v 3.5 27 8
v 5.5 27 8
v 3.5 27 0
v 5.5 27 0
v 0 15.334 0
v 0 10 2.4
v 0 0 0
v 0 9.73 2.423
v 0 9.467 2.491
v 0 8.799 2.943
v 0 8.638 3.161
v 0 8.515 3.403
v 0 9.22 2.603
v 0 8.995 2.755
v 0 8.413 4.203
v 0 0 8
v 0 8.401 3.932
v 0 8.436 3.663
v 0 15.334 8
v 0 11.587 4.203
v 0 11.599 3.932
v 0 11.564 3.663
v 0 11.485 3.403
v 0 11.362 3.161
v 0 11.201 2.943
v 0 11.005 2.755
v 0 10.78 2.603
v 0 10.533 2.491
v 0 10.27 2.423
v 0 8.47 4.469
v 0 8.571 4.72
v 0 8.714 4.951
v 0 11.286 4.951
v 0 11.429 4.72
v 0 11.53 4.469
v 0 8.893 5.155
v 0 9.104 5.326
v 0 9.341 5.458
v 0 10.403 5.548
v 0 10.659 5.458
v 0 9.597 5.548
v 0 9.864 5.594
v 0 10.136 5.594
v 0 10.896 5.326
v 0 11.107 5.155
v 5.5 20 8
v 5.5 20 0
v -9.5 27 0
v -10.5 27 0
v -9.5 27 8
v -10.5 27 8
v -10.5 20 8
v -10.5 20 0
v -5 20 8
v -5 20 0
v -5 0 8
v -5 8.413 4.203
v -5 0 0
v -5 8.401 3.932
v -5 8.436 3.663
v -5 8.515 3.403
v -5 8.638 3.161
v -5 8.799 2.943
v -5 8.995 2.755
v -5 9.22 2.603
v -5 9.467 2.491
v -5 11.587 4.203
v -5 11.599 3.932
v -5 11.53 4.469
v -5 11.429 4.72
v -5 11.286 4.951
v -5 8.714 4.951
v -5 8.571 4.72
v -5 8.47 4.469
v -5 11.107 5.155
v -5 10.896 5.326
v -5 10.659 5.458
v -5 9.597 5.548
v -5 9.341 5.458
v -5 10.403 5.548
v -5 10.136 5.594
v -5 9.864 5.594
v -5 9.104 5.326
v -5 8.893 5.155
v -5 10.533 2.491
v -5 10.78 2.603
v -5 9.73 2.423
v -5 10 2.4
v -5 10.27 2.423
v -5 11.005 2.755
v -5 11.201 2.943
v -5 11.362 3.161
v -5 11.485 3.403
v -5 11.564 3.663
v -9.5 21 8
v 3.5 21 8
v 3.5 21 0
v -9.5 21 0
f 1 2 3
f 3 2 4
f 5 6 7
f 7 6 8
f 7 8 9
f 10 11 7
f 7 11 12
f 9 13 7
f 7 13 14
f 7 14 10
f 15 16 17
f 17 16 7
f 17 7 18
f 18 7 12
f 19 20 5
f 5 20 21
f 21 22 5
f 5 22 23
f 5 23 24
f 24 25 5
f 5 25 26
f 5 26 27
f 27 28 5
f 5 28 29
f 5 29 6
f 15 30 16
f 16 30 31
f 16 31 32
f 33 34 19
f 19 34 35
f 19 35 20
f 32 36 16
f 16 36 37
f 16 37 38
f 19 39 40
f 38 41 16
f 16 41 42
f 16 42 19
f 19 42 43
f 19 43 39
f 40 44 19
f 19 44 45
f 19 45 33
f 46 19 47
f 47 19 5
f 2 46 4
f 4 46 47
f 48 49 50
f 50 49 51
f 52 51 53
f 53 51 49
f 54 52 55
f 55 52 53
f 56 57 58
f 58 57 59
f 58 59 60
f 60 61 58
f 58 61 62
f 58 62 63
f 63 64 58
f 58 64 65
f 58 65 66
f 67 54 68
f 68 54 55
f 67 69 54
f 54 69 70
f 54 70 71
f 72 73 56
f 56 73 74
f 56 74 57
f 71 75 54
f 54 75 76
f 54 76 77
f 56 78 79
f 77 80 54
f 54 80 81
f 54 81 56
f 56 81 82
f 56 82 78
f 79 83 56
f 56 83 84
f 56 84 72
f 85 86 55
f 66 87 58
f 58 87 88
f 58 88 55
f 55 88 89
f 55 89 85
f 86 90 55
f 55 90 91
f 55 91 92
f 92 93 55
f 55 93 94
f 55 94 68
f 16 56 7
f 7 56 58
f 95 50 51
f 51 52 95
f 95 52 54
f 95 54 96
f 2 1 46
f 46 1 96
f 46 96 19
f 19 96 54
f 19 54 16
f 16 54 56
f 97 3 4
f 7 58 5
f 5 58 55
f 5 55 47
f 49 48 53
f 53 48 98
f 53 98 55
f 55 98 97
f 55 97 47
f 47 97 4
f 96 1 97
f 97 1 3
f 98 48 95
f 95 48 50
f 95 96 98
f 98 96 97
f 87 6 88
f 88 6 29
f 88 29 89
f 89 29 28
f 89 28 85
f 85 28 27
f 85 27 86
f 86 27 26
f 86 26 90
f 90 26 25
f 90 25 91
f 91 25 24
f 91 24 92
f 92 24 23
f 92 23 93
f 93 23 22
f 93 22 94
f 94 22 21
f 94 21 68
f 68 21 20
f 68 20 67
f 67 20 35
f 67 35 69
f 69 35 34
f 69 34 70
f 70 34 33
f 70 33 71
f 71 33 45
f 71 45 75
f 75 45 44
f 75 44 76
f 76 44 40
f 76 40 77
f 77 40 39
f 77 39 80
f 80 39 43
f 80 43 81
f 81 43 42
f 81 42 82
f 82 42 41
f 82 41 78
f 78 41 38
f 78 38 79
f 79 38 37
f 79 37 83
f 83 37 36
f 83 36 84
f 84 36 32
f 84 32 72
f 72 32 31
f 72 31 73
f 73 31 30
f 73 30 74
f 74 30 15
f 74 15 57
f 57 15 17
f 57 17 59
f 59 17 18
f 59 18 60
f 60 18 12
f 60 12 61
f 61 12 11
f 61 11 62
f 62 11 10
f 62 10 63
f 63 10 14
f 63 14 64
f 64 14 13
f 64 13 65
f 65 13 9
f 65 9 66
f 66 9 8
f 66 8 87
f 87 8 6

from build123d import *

# Parameters (mm, degrees)
EXTRUDE_4_DEPTH     = 8
SKETCH_7_W          = 13
SKETCH_7_H          = 6.499106166
CUT_EXTRUDE_3_DEPTH = 31.054117854
SKETCH_8_R          = 1.6
CUT_EXTRUDE_4_DEPTH = 31.054117854


with BuildPart() as part:
    # 草图6 → 凸台-拉伸4 (new body)
    with BuildSketch(Plane.XY):
        Polygon((-5, 20), (-10.5, 20), (-10.5, 27), (5.5, 27), (5.5, 20), (0, 15.33359454), (0, 0), (-5, 0), align=None)
    extrude(amount=EXTRUDE_4_DEPTH)

    # 草图7 → 切除-拉伸3 (cut, through all)
    with BuildSketch(Plane(origin=(0, 0, 0), x_dir=(-1, 0, 0), z_dir=(0, 0, -1))):
        with Locations((3, 24.249553083)):
            Rectangle(SKETCH_7_W, SKETCH_7_H)
    extrude(amount=-CUT_EXTRUDE_3_DEPTH, mode=Mode.SUBTRACT)

    # 草图8 → 切除-拉伸4 (cut, through all)
    with BuildSketch(Plane(origin=(0, 0, 0), x_dir=(0, 0, -1), z_dir=(1, 0, 0))):
        with Locations((-4, 10)):
            Circle(SKETCH_8_R)
    extrude(amount=-CUT_EXTRUDE_4_DEPTH, mode=Mode.SUBTRACT)


solid = part.part
